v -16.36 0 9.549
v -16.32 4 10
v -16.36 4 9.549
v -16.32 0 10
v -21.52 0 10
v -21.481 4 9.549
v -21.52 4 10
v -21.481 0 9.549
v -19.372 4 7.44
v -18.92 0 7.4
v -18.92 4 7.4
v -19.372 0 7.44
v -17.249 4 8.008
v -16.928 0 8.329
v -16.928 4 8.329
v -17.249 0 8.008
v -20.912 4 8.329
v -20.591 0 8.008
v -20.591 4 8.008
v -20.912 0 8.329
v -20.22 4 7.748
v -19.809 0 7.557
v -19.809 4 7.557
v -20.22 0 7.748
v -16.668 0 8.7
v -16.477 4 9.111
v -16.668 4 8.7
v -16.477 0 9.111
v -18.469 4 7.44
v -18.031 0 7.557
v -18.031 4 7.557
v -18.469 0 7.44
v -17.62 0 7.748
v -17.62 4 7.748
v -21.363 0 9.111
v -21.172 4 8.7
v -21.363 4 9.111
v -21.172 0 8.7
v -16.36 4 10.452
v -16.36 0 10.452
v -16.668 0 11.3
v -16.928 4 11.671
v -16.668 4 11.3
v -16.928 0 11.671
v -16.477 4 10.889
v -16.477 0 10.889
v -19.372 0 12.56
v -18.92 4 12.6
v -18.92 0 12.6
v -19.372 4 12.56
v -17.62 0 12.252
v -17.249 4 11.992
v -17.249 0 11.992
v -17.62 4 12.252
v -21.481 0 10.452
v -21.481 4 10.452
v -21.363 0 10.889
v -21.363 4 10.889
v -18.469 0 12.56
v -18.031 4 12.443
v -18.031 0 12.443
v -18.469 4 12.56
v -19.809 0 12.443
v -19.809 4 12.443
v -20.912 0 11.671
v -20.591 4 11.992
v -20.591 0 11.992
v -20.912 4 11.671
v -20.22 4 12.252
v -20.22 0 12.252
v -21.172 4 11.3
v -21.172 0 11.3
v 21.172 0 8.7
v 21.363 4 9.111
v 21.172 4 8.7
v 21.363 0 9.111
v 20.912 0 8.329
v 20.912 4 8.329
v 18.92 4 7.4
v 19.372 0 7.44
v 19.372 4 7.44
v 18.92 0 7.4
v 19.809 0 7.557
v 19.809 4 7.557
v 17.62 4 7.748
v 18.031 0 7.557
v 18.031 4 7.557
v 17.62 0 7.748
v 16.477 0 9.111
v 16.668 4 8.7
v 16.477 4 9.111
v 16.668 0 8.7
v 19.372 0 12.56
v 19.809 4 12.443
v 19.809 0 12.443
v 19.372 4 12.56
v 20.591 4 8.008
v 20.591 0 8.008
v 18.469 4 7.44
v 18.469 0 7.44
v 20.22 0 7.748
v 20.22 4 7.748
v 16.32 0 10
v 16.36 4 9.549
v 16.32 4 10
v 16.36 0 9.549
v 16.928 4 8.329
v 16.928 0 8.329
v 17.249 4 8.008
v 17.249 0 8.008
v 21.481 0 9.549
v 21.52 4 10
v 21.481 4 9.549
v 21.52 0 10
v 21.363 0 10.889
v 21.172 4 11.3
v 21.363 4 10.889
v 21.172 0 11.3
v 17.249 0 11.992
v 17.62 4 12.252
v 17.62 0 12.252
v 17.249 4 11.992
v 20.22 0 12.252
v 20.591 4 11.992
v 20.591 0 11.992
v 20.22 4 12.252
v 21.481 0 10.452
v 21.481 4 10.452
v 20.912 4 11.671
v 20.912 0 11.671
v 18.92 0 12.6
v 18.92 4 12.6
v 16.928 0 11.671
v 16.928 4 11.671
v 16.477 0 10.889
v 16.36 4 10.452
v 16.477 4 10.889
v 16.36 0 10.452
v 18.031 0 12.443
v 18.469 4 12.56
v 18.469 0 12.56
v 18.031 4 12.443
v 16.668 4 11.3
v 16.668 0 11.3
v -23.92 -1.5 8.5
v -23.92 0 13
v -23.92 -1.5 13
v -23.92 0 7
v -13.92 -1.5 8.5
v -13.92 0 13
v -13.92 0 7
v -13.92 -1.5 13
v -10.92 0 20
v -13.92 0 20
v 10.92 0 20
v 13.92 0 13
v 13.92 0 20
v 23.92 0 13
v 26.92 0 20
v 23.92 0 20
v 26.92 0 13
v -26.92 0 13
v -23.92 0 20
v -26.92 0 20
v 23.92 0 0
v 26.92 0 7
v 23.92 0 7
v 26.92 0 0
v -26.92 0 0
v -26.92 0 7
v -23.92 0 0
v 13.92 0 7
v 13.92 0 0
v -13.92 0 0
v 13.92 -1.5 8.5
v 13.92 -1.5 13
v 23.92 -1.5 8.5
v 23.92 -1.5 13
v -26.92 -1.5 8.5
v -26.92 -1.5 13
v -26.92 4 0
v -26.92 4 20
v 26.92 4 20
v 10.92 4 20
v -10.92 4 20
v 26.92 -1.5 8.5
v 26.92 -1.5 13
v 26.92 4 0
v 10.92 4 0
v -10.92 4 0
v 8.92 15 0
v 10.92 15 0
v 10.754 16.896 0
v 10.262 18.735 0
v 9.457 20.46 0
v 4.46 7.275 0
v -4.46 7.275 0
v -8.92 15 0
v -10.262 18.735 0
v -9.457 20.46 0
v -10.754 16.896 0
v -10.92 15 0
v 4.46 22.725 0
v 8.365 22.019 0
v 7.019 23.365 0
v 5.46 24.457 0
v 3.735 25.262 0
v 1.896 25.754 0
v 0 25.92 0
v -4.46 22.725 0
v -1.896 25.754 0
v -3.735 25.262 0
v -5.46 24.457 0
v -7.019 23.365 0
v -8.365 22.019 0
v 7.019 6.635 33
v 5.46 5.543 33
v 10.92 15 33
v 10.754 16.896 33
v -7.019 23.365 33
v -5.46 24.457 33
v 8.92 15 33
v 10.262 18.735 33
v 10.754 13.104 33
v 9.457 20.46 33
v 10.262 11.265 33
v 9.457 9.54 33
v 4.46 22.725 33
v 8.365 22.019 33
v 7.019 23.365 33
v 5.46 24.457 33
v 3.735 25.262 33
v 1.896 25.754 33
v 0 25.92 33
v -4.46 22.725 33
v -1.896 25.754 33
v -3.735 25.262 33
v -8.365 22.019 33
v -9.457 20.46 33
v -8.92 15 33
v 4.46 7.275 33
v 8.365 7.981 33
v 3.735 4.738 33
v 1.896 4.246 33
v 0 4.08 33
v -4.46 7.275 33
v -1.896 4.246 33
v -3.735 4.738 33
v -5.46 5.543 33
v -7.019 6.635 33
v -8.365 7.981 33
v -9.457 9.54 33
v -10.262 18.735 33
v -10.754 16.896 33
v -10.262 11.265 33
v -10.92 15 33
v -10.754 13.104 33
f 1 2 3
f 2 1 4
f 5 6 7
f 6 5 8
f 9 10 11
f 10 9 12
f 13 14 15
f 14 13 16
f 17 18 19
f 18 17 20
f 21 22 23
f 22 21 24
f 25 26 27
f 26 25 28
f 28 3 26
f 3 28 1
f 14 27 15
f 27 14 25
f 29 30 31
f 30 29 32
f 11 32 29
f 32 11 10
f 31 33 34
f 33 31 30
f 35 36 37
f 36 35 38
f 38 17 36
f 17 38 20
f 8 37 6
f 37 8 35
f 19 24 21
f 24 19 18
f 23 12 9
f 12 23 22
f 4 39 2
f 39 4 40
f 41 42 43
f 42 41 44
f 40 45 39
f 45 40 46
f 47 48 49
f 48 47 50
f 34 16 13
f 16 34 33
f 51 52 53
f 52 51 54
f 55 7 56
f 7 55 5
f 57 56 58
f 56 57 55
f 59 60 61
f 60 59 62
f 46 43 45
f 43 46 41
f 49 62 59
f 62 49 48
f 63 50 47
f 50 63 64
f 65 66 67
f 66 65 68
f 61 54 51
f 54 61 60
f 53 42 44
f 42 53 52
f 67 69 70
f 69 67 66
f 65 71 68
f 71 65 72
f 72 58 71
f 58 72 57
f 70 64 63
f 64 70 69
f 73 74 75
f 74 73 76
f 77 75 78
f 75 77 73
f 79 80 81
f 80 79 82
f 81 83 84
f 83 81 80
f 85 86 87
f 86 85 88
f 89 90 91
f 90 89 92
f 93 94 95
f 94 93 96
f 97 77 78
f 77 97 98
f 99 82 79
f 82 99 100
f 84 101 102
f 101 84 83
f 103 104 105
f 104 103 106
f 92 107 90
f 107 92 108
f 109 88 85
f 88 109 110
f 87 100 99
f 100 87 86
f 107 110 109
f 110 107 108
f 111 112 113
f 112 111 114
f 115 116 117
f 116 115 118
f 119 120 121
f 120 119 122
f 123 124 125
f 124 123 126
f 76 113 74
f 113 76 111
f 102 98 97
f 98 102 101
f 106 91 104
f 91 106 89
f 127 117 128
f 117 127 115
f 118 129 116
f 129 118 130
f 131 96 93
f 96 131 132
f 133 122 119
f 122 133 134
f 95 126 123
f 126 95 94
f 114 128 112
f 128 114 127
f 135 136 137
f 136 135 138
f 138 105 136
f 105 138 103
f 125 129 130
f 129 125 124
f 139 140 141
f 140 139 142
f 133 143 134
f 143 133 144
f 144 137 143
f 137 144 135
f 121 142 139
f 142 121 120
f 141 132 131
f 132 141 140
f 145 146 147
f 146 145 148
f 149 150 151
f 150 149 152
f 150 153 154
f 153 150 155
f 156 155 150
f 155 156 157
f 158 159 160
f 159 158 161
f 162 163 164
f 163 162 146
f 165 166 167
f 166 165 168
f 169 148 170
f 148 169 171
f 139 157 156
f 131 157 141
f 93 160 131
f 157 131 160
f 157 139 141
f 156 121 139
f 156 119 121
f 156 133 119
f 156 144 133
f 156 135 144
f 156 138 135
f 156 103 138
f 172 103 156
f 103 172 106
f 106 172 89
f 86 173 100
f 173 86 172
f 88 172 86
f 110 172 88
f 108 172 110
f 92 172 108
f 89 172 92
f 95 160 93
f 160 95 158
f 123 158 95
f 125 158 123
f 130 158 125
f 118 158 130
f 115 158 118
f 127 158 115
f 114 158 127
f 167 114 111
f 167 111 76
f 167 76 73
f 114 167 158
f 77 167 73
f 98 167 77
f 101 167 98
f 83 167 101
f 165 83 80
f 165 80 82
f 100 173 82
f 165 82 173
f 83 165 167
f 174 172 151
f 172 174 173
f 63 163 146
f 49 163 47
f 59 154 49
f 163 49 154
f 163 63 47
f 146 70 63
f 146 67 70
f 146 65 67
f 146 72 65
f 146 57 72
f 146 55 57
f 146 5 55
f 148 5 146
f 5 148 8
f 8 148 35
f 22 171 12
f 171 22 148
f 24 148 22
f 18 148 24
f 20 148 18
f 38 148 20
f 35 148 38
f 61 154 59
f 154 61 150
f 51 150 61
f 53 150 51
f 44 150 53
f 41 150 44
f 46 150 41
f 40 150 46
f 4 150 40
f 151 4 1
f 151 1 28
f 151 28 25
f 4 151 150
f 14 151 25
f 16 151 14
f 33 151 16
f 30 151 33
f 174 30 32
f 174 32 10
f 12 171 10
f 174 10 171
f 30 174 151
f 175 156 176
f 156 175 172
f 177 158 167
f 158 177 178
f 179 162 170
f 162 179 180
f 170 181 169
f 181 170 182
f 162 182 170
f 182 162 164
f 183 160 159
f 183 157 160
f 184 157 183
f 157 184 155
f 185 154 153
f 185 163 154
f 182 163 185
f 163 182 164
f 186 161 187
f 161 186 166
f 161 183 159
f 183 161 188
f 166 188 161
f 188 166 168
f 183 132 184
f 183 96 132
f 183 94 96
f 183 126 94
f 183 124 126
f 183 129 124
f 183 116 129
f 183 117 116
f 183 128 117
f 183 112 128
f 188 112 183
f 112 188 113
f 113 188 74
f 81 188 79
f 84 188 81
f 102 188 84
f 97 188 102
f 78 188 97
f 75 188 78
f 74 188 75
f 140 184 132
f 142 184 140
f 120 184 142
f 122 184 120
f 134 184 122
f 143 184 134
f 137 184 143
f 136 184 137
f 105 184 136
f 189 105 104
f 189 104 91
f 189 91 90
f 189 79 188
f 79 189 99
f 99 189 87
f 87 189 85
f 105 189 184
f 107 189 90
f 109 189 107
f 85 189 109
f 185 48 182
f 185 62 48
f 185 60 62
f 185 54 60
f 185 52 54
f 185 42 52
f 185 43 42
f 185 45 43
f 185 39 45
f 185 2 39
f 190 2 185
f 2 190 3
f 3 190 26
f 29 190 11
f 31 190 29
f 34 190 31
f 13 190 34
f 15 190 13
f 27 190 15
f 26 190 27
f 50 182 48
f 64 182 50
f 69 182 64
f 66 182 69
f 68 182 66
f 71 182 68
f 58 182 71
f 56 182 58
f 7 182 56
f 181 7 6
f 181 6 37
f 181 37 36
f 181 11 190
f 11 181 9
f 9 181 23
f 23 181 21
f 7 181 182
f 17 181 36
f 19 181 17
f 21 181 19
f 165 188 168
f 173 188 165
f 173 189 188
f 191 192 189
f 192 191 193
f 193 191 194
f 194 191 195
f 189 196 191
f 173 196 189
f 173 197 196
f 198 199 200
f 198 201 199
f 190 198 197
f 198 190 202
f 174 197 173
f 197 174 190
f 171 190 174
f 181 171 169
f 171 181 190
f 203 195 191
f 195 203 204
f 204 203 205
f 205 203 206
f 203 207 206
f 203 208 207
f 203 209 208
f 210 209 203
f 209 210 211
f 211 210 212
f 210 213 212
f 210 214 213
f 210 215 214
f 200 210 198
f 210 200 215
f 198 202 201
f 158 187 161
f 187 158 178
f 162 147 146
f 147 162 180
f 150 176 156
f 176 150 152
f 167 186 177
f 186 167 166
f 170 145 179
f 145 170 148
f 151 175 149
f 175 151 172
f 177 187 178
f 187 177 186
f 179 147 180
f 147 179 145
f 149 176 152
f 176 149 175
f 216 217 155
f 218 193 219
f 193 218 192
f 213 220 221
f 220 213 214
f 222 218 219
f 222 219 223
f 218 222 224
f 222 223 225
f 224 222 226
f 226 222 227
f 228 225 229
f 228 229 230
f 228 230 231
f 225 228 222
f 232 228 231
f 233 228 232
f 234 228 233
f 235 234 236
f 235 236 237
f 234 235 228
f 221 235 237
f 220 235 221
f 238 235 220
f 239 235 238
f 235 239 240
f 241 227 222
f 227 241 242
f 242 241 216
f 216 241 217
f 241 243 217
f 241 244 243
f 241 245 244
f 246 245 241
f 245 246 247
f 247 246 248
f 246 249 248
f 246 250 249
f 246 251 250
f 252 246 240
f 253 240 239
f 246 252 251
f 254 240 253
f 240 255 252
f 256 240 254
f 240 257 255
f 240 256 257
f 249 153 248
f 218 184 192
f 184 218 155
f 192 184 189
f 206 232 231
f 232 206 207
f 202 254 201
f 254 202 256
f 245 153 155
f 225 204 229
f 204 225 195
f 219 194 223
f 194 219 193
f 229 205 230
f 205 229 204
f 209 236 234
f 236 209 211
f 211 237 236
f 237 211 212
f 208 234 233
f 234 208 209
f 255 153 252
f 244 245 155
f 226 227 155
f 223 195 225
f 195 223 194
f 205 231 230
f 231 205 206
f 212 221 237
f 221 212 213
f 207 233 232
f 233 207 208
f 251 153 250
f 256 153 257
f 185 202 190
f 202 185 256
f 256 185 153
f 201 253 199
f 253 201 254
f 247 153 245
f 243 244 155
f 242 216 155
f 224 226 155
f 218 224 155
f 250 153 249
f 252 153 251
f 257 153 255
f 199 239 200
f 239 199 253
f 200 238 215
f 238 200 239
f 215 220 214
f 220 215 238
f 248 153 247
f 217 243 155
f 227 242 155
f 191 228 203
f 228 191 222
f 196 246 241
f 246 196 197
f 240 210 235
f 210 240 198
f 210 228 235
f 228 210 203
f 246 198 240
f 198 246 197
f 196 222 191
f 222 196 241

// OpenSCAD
$fn=36;

rail_height=20; //2020 rail
slot_width=6;
notch_depth=1.5;
rail_screw_diameter=5.2; //M5 + margin

slot_nut_length=10;

//LM8LUU linear bearing
bearing_diameter=15;
//bearing_height=45; //Full LM8LUU bearing
bearing_height=33; //Only covers part between "notches". Make as long as you wish.

bearing_margin=0.45; //Increase in diameter due to printer behaviour. Make test pieces for a snug fit.

bearing_hole_sides=6;

bearing_hole_inscribed=(bearing_diameter+bearing_margin)/cos(180/bearing_hole_sides);

echo(bearing_hole_inscribed);

bearing_holder_diameter=bearing_hole_inscribed+4;
axle_offset=15; //Distance from face of bracket to center of bearing/axle. Determined by z-nut bracket


bracket_width=26;
endplate_thickness=0;
bracket_thickness=4;
e=0.01;
hole_inset=8; //distance from edge of bracket to mounting hole
bracket_length=bearing_holder_diameter+hole_inset*4;

difference() {
    union() {
        
       //Base parts of bracket
       translate([-bracket_length/2,0,0]) {
           cube([bracket_length, bracket_thickness, rail_height]);

       }
       
       
       //Notch into rail
       notch_points=[[0,-slot_width/2],[notch_depth,-slot_width/2+notch_depth],[notch_depth,slot_width/2],[0,slot_width/2]];
       notch_path=[[0,1,2,3,0]];
       
       translate([bracket_length/2+endplate_thickness,0,rail_height/2]) rotate([90,0,-90])  linear_extrude(height=bracket_length+endplate_thickness*2) polygon(points=notch_points, paths=notch_path, convexity=2);
       
       //Linear bearing holder
       hull() {
       translate([0,axle_offset,0]) {
           cylinder(d=bearing_holder_diameter,h=bearing_height);
       }
       
       //Make it beefier
       translate([-bearing_holder_diameter/2,0,0]) cube([bearing_holder_diameter, axle_offset, rail_height]);
       }
    }
    
    union() {
        //Holes for mounting bolts to rail
        for(i=[-1,1])
            translate([i*(bracket_length/2-hole_inset), -e, rail_height/2]) rotate([-90,0,0]) cylinder(d=rail_screw_diameter, h=bracket_thickness+2*e);
        
        //Cutout in notch for slot nuts
         for(i=[-1,1])
            translate([i*(bracket_length/2-hole_inset)-slot_nut_length/2,-notch_depth-e,0]) cube([slot_nut_length,notch_depth+e,rail_height]);
        
        //Linear bearing holder
        translate([0,axle_offset,-e]) {
            cylinder(d=bearing_hole_inscribed, $fn=bearing_hole_sides, h=bearing_height+2*e);
        }
        
    }
}
